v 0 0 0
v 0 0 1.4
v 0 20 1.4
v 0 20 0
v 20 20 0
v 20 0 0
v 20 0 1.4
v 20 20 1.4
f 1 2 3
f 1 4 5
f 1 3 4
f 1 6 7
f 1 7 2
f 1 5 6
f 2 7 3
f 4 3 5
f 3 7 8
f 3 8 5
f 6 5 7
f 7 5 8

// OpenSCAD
/* Warning, this is a very basic generator with a lot of approximation 
input data : [LQFP, 2SB, 20x20x1.4mm, 144, , A, C04-21010A]
generated by com.zoubworld.electronics.cad.model3d.Basic
Date : Sun Feb 15 10:50:49 CET 2026
*/

//body
color("black")
translate([0,0,0])
cube([20.0,20.0,1.4], center=false);
